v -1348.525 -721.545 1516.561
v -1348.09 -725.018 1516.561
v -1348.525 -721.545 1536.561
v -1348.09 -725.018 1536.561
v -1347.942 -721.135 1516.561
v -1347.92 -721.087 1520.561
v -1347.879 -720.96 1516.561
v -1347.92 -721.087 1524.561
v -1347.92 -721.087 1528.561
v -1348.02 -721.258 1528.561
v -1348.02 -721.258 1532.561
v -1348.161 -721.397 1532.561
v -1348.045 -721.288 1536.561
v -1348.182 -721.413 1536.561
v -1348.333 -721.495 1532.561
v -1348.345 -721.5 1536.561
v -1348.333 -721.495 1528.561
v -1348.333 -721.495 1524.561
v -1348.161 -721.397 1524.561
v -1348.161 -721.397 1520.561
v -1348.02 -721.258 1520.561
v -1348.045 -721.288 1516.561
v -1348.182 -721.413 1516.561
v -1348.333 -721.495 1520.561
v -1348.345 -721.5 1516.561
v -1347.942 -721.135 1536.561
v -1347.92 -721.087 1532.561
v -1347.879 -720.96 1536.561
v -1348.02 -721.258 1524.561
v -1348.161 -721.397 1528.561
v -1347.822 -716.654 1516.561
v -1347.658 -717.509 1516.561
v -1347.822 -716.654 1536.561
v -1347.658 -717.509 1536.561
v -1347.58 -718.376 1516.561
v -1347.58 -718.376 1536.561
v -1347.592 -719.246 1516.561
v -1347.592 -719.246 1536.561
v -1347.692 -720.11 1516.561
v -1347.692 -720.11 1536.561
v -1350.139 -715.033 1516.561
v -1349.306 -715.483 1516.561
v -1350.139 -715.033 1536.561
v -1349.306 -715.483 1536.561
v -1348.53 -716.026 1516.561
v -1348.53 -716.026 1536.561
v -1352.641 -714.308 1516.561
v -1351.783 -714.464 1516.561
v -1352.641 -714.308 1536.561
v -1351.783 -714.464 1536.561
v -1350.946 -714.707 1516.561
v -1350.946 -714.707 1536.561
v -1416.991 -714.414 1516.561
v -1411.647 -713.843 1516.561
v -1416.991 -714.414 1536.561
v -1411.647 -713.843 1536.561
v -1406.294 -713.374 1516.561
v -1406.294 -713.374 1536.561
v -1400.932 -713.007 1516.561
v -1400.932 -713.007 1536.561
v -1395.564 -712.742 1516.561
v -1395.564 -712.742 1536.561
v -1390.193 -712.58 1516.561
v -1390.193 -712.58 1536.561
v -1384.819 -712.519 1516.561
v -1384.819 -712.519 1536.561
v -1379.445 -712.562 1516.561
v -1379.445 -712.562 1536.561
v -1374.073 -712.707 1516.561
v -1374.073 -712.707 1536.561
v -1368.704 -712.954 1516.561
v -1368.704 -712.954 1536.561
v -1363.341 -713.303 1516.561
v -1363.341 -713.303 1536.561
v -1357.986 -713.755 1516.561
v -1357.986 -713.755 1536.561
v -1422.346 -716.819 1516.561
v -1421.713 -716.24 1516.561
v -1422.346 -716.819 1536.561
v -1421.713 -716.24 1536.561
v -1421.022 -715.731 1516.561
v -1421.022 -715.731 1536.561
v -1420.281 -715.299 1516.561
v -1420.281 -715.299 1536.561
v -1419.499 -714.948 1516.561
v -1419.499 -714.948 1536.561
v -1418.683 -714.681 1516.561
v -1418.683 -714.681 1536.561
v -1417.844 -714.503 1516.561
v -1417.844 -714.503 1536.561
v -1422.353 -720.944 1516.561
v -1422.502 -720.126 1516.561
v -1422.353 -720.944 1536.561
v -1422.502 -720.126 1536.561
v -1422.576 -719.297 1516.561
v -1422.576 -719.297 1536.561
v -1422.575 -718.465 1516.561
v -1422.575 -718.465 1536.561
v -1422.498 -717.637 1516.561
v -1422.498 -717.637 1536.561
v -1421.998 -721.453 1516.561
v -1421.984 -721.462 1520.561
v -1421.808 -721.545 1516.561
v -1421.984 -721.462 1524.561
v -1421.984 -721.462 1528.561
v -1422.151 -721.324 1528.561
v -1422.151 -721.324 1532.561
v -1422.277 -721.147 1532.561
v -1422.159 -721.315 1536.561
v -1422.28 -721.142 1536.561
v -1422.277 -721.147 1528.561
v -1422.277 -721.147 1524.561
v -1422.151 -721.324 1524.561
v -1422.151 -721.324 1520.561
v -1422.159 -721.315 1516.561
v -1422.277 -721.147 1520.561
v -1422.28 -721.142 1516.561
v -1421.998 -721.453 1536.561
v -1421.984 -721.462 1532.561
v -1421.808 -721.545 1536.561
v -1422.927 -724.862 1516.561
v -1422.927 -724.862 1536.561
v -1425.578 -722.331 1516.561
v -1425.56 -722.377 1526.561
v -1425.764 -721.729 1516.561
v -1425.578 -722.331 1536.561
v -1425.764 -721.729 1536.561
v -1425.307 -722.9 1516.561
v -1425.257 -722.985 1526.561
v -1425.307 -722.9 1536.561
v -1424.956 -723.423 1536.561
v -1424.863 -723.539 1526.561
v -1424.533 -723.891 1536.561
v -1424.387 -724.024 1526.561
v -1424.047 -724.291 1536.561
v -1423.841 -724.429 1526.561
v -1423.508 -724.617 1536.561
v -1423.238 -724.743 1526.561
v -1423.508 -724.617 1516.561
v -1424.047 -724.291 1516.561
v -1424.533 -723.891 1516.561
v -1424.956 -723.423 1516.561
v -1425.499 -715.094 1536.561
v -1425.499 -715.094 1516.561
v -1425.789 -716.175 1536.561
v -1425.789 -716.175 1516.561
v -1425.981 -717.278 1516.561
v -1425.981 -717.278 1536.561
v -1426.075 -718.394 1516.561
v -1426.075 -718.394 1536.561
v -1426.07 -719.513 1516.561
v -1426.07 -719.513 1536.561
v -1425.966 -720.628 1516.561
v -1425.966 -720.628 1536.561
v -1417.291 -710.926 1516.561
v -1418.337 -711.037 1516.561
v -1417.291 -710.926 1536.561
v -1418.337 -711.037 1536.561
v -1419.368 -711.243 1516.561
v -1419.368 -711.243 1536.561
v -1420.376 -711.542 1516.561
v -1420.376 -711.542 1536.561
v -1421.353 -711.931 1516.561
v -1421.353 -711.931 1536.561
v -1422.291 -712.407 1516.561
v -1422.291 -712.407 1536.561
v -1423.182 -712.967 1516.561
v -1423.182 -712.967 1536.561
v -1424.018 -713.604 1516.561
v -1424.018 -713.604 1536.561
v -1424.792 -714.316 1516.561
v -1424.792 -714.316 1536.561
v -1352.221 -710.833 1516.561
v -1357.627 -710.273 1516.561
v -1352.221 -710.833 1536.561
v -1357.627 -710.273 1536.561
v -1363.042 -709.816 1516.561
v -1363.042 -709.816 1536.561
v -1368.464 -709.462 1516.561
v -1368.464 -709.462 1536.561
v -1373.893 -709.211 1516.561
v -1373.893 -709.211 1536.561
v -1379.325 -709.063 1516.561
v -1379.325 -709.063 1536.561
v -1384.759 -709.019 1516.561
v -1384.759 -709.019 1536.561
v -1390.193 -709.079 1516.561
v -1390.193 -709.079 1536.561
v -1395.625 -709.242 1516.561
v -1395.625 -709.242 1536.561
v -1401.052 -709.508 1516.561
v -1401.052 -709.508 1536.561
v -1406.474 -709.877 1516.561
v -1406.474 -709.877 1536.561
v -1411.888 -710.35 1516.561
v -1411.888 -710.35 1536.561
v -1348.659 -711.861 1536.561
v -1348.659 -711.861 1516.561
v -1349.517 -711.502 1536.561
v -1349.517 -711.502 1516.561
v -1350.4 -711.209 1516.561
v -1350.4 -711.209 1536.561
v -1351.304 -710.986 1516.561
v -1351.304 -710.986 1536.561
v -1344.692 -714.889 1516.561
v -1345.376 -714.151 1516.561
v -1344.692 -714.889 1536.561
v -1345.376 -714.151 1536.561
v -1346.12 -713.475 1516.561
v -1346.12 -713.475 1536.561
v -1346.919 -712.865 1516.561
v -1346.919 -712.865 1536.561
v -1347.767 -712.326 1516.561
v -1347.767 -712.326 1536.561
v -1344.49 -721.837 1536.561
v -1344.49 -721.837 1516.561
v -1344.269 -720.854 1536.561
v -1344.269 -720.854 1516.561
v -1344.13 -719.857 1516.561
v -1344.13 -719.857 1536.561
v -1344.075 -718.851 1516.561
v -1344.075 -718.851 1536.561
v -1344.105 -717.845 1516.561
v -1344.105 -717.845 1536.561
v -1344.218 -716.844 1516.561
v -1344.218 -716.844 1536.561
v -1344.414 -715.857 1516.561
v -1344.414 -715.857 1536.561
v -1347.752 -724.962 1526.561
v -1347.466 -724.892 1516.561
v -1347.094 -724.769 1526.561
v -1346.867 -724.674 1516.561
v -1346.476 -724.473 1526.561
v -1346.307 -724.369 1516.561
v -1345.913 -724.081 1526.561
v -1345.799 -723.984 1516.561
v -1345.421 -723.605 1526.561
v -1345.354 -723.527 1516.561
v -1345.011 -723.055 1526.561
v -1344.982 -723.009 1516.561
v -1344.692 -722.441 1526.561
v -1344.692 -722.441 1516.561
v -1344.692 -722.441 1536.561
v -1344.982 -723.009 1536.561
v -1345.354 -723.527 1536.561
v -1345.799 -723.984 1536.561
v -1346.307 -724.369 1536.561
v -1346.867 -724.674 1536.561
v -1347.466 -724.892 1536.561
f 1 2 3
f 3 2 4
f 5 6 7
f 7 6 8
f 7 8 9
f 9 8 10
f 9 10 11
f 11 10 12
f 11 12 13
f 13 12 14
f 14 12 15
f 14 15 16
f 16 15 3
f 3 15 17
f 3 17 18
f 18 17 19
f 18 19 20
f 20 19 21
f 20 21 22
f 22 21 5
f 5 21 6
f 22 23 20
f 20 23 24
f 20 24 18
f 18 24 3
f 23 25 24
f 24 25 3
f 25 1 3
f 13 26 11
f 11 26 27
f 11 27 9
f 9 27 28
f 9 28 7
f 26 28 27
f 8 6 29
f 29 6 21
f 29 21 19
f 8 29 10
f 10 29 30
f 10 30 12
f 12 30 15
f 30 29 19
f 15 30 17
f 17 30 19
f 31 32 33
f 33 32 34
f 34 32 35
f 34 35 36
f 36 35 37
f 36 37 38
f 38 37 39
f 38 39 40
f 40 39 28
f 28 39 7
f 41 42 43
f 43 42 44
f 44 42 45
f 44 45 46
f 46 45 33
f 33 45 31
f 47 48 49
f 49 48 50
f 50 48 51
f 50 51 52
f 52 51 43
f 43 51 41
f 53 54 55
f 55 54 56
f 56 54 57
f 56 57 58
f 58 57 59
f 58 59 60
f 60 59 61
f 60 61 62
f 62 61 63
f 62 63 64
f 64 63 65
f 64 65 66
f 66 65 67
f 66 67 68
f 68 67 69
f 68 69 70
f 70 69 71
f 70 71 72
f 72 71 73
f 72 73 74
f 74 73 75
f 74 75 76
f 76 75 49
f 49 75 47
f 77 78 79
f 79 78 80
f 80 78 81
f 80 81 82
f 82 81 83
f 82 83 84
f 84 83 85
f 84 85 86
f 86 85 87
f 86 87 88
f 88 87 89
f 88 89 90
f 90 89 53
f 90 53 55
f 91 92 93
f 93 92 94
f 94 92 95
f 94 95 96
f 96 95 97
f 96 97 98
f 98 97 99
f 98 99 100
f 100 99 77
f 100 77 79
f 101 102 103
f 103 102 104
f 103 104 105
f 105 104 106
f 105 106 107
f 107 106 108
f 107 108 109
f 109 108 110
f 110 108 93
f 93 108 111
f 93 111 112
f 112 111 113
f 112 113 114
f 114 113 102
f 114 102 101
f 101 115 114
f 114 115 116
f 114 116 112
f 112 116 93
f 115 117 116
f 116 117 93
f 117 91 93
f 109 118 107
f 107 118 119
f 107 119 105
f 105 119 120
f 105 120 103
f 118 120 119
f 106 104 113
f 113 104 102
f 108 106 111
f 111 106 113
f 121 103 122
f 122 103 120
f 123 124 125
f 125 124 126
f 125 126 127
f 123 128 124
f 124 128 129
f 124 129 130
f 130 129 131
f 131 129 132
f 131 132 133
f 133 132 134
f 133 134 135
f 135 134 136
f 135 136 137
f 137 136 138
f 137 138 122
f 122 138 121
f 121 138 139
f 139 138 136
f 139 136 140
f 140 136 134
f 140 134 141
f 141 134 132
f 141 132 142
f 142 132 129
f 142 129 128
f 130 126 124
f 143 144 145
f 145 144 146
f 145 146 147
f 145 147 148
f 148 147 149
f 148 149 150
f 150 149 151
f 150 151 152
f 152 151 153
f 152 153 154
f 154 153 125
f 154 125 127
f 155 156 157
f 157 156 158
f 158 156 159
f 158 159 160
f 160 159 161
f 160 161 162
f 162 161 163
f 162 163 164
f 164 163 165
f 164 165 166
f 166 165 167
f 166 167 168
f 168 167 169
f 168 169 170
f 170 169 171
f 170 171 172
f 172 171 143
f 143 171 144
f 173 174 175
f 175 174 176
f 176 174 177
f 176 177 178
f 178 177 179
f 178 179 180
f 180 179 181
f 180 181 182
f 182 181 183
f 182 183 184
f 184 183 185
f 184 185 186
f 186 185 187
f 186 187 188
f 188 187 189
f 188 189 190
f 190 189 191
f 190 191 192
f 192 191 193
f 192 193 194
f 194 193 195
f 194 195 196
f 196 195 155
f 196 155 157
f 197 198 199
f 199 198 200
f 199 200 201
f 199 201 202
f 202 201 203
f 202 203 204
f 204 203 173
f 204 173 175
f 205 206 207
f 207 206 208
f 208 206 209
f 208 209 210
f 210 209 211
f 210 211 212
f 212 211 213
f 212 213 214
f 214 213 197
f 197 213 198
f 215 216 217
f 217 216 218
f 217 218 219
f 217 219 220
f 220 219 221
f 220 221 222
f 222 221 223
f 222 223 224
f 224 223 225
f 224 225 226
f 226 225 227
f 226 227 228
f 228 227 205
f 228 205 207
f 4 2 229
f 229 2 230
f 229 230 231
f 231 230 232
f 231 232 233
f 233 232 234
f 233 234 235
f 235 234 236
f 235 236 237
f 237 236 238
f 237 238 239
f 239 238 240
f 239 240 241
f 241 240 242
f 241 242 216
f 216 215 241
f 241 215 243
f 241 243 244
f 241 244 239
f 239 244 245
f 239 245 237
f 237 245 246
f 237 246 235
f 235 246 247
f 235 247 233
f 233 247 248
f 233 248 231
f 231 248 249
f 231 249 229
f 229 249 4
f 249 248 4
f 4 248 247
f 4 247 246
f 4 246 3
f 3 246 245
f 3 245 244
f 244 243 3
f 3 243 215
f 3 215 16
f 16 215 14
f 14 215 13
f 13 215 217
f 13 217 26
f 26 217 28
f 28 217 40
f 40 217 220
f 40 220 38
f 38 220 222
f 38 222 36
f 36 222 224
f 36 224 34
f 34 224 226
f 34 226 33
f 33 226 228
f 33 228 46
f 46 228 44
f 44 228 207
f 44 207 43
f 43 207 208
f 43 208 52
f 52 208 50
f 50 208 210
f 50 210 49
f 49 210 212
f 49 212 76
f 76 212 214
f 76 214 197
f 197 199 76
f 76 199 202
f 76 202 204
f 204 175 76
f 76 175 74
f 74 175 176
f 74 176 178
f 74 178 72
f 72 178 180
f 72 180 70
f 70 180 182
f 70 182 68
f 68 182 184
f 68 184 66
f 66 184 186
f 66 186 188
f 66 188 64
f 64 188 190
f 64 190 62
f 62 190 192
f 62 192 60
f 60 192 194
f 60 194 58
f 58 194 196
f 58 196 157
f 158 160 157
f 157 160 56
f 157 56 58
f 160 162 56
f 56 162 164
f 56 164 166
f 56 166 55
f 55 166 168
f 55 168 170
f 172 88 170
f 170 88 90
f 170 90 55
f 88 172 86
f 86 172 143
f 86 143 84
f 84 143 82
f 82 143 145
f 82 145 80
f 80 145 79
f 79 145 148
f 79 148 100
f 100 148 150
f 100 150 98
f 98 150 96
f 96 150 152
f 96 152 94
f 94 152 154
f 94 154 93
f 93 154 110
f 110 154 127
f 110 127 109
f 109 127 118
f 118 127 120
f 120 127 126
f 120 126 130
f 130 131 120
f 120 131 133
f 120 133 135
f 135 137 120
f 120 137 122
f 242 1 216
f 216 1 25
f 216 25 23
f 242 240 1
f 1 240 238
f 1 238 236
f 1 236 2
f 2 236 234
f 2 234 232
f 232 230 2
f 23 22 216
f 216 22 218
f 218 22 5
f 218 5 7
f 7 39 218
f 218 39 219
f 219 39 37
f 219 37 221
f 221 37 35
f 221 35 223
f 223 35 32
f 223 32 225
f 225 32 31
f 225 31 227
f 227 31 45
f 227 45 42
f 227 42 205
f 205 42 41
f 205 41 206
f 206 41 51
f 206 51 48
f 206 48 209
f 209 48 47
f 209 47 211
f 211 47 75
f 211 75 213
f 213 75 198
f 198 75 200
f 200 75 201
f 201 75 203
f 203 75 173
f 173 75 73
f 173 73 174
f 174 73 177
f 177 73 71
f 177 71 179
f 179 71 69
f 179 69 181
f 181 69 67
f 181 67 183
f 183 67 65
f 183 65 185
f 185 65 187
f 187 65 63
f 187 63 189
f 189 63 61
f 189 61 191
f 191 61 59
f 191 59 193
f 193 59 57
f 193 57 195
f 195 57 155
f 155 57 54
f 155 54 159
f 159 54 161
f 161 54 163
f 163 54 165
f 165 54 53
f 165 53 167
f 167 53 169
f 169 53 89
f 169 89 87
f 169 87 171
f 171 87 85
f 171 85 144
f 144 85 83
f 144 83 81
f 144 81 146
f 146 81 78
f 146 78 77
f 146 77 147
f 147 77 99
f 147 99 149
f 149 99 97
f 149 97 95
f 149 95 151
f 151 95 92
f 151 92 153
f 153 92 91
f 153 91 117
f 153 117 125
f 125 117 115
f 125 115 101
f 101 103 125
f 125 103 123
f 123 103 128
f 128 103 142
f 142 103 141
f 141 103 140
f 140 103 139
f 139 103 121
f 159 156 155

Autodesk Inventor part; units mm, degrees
ref_plane "YZ Plane" through (0, 0, 0) normal (1, 0, 0) x (0, 1, 0)
ref_plane "XZ Plane" through (0, 0, 0) normal (0, 1, 0) x (-1, 0, 0)
ref_plane "XY Plane" through (0, 0, 0) normal (0, 0, 1) x (1, 0, 0)
ref_plane "Work Plane7" through (-1576.3187, -383.5702, 1516.5612) normal (0, 0, 1) x (1, 0, 0)
sketch "Sketch7" plane through (-1576.3187, -383.5702, 1516.5612) normal (0, 0, 1) x (1, 0, 0)
  arc A0 (159.3276, -330.8443) -> (156.2977, -331.6006) centre (159.7307, -338.9062) ccw
  arc A1 (156.2977, -331.6006) -> (153.9729, -333.2489) centre (159.7307, -338.9062) ccw
  arc A2 (153.9729, -333.2489) -> (153.7336, -335.2986) centre (162.867, -335.3261) ccw
  arc A3 (153.7336, -335.2986) -> (153.966, -337.3737) centre (162.867, -335.3261) ccw
  arc A4 (153.966, -337.3737) -> (154.5105, -337.975) centre (154.7761, -337.1873) ccw
  arc A5 (228.4965, -333.0839) -> (226.18, -331.4628) centre (222.6932, -338.9111) ccw
  arc A6 (228.4399, -337.3902) -> (228.4965, -333.0839) centre (220.1875, -335.1281) ccw
  arc A7 (227.7937, -337.975) -> (228.4399, -337.3902) centre (227.6994, -337.2214) ccw
  arc A8 (223.6782, -330.7382) -> (159.3276, -330.8443) centre (191.9649, -610.889) ccw
  arc A9 (226.18, -331.4628) -> (223.6782, -330.7382) centre (222.5826, -339.2015) ccw
  arc A10 (150.5551, -338.1583) -> (153.392, -341.2915) centre (154.7761, -337.1873) ccw
  arc A11 (150.2336, -335.2881) -> (150.5551, -338.1583) centre (162.867, -335.3261) ccw
  arc A12 (150.8193, -331.5239) -> (150.2336, -335.2881) centre (162.867, -335.3261) ccw
  arc A13 (154.8092, -328.4329) -> (150.8193, -331.5239) centre (159.7307, -338.9062) ccw
  arc A14 (159.0274, -327.3556) -> (154.8092, -328.4329) centre (159.7307, -338.9062) ccw
  arc A15 (224.0974, -327.2633) -> (159.0274, -327.3556) centre (191.9649, -610.889) ccw
  arc A16 (227.6596, -328.2909) -> (224.0974, -327.2633) centre (222.5826, -339.2015) ccw
  arc A17 (231.6266, -331.3184) -> (227.6596, -328.2909) centre (222.6932, -338.9111) ccw
  arc A18 (231.8286, -338.2666) -> (231.6266, -331.3184) centre (220.1875, -335.1281) ccw
  arc A19 (228.2282, -341.4479) -> (231.8286, -338.2666) centre (227.6994, -337.2214) ccw
  line L0 (153.392, -341.2915) -> (154.5105, -337.975)
  line L1 (227.7937, -337.975) -> (228.2282, -341.4479)
  point P0 (1576.3187, 383.5702)
  dimension "d20" = 73.2832
  dimension "d21" = 3.5
  dimension "d22" = 74.8362
extrude "Extrusion3" add sketch "Sketch7" along normal blind 20
properties part number "_3DPrint"
